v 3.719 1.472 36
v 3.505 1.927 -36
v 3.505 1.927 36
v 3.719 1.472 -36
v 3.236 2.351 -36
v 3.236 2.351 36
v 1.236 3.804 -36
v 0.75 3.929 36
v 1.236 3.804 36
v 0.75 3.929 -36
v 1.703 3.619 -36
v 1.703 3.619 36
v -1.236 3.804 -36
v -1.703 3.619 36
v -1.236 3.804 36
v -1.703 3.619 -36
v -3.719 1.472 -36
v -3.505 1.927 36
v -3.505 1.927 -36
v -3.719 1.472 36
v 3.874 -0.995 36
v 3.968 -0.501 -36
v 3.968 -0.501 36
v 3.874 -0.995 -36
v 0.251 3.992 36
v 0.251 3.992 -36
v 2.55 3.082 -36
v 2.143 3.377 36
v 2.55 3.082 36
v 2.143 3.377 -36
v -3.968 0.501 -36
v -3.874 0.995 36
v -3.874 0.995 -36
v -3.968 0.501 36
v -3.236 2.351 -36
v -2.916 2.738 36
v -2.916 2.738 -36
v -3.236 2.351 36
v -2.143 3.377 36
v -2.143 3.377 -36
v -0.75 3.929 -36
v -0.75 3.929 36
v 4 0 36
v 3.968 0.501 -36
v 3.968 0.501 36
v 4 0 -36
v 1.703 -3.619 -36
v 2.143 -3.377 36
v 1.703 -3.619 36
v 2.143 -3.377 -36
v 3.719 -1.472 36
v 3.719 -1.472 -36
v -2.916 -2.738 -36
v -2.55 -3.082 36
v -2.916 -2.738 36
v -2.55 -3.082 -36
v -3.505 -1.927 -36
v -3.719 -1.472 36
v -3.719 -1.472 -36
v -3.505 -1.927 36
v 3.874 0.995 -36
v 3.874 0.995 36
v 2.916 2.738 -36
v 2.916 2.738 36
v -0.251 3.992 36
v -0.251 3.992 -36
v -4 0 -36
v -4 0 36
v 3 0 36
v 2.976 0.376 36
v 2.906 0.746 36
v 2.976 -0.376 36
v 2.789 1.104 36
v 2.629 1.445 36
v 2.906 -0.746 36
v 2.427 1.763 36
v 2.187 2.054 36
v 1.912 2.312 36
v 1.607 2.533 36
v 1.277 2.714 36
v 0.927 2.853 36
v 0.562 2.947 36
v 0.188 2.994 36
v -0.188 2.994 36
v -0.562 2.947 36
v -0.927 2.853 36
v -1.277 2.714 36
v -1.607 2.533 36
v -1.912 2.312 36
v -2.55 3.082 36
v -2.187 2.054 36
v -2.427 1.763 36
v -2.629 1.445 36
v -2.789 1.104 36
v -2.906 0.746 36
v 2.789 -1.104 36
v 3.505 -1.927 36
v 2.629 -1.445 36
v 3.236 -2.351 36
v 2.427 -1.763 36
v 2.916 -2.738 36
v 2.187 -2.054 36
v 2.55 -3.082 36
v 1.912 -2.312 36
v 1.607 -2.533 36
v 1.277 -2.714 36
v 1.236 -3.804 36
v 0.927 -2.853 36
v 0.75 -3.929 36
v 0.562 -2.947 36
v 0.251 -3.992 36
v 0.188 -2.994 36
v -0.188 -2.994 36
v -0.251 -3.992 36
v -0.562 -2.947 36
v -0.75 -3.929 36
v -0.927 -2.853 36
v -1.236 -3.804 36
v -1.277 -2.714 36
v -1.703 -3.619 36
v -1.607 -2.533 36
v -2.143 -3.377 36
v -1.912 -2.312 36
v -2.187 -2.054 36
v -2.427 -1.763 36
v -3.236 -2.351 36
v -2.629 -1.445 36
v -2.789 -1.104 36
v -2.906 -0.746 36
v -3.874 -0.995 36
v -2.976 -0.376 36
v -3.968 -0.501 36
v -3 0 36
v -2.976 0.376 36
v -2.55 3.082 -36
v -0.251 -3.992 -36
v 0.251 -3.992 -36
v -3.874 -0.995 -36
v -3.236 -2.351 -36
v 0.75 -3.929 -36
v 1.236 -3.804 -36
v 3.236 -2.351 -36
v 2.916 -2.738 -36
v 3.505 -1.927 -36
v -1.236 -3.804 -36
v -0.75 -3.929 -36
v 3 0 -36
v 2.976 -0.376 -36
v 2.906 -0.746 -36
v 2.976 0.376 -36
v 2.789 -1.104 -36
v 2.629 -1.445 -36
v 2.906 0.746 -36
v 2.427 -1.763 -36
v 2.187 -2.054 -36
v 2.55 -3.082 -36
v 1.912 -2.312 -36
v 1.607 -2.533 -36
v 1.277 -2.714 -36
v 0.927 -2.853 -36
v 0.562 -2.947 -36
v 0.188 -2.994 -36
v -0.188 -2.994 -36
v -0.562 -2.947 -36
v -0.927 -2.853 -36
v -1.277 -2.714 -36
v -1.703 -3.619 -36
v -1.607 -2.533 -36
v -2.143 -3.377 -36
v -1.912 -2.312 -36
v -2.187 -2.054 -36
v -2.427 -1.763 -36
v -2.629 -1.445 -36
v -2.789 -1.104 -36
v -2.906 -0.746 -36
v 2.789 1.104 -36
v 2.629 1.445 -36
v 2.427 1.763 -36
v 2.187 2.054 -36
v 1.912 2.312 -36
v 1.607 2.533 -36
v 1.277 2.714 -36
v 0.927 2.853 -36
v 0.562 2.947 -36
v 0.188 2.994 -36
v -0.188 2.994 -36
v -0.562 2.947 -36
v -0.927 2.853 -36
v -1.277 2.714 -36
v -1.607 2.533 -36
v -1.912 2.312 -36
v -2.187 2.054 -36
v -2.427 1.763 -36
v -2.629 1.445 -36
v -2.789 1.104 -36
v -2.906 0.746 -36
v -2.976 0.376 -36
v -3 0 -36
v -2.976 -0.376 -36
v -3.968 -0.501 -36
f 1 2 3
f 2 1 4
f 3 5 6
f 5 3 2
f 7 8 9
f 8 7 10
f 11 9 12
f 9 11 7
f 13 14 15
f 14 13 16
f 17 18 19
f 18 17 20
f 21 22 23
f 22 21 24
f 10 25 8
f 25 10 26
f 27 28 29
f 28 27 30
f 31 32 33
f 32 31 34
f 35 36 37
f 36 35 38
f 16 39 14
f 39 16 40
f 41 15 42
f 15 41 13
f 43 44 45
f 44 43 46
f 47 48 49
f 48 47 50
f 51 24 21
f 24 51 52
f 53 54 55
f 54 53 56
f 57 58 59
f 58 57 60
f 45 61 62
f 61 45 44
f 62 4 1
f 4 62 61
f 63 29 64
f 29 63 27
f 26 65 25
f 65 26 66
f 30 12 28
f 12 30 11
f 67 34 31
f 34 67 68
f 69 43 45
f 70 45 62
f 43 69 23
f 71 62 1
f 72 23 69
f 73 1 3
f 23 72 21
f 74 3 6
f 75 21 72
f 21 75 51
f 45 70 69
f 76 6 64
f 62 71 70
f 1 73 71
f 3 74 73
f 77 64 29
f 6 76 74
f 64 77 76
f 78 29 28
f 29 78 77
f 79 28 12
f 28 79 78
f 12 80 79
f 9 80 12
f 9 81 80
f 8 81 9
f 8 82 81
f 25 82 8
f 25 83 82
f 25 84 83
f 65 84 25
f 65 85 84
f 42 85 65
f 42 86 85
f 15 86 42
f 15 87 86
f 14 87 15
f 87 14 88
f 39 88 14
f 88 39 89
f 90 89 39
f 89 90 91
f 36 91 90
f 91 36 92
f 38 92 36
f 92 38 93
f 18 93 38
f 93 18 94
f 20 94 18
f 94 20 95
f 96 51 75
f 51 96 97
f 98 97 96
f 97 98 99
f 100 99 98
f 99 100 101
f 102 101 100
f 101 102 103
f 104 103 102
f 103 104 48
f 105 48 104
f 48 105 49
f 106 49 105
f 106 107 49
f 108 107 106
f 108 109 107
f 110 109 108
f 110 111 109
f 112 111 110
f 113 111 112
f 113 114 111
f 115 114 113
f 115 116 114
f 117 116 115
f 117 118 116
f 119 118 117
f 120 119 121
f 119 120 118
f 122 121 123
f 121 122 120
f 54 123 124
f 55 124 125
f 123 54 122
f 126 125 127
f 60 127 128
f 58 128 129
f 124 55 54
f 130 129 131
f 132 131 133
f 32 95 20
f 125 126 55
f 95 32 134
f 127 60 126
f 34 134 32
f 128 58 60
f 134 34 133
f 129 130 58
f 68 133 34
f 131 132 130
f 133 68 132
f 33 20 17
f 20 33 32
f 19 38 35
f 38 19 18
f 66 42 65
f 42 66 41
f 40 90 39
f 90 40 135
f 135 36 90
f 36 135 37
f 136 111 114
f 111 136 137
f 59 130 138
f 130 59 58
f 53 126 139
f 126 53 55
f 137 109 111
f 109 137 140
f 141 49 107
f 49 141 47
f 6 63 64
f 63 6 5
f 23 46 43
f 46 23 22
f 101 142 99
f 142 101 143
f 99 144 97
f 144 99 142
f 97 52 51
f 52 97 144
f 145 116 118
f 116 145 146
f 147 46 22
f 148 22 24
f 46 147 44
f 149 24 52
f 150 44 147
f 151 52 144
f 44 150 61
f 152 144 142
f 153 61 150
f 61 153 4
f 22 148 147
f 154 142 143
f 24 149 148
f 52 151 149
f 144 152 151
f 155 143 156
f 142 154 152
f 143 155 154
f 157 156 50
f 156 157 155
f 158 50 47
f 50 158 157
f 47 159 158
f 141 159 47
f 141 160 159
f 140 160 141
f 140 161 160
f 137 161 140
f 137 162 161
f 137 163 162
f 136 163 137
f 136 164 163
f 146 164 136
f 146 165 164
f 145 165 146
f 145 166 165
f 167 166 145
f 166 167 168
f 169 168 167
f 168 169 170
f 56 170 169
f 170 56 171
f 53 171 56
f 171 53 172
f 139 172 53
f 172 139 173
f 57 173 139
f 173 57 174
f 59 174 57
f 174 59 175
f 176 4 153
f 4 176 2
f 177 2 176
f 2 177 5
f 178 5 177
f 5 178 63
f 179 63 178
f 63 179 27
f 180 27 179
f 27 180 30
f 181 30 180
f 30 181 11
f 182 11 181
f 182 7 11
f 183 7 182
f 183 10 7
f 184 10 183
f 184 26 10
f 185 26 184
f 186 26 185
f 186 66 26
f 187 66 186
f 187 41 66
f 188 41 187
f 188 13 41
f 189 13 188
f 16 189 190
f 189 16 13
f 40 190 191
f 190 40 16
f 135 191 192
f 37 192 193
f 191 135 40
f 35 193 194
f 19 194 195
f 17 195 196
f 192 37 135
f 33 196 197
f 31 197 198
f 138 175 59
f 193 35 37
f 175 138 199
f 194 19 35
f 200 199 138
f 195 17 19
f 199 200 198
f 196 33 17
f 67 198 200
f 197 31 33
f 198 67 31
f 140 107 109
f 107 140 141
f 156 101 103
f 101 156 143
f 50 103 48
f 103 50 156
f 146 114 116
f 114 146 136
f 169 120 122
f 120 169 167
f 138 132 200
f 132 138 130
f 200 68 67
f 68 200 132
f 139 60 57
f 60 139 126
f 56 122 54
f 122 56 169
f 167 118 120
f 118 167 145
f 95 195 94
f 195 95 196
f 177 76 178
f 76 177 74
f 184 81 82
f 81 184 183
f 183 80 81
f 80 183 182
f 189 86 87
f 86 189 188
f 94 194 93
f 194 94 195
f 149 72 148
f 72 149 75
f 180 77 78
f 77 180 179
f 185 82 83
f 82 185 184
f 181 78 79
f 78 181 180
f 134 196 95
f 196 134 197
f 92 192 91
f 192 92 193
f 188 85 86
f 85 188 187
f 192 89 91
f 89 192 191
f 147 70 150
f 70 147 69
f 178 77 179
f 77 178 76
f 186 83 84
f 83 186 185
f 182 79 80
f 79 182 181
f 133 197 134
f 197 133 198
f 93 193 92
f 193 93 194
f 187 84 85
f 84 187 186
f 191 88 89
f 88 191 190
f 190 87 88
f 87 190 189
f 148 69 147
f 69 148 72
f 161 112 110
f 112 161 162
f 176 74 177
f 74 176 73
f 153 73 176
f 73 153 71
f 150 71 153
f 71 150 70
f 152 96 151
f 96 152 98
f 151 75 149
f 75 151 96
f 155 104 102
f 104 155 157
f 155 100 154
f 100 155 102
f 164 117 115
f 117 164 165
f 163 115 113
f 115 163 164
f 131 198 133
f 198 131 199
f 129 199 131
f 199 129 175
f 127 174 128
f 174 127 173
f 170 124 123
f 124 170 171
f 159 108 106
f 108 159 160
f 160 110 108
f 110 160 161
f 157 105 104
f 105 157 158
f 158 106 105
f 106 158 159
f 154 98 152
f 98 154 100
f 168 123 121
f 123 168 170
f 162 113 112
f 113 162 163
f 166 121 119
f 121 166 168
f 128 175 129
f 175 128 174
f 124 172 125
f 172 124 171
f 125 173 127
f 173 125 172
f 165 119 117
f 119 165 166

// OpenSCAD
$fn = 50;


difference() {
	union() {
		translate(v = [0, 0, -36.0000000000]) {
			cylinder(h = 72, r = 4.0000000000);
		}
	}
	union() {
		translate(v = [0, 0, -100.0000000000]) {
			cylinder(h = 200, r = 3);
		}
	}
}
